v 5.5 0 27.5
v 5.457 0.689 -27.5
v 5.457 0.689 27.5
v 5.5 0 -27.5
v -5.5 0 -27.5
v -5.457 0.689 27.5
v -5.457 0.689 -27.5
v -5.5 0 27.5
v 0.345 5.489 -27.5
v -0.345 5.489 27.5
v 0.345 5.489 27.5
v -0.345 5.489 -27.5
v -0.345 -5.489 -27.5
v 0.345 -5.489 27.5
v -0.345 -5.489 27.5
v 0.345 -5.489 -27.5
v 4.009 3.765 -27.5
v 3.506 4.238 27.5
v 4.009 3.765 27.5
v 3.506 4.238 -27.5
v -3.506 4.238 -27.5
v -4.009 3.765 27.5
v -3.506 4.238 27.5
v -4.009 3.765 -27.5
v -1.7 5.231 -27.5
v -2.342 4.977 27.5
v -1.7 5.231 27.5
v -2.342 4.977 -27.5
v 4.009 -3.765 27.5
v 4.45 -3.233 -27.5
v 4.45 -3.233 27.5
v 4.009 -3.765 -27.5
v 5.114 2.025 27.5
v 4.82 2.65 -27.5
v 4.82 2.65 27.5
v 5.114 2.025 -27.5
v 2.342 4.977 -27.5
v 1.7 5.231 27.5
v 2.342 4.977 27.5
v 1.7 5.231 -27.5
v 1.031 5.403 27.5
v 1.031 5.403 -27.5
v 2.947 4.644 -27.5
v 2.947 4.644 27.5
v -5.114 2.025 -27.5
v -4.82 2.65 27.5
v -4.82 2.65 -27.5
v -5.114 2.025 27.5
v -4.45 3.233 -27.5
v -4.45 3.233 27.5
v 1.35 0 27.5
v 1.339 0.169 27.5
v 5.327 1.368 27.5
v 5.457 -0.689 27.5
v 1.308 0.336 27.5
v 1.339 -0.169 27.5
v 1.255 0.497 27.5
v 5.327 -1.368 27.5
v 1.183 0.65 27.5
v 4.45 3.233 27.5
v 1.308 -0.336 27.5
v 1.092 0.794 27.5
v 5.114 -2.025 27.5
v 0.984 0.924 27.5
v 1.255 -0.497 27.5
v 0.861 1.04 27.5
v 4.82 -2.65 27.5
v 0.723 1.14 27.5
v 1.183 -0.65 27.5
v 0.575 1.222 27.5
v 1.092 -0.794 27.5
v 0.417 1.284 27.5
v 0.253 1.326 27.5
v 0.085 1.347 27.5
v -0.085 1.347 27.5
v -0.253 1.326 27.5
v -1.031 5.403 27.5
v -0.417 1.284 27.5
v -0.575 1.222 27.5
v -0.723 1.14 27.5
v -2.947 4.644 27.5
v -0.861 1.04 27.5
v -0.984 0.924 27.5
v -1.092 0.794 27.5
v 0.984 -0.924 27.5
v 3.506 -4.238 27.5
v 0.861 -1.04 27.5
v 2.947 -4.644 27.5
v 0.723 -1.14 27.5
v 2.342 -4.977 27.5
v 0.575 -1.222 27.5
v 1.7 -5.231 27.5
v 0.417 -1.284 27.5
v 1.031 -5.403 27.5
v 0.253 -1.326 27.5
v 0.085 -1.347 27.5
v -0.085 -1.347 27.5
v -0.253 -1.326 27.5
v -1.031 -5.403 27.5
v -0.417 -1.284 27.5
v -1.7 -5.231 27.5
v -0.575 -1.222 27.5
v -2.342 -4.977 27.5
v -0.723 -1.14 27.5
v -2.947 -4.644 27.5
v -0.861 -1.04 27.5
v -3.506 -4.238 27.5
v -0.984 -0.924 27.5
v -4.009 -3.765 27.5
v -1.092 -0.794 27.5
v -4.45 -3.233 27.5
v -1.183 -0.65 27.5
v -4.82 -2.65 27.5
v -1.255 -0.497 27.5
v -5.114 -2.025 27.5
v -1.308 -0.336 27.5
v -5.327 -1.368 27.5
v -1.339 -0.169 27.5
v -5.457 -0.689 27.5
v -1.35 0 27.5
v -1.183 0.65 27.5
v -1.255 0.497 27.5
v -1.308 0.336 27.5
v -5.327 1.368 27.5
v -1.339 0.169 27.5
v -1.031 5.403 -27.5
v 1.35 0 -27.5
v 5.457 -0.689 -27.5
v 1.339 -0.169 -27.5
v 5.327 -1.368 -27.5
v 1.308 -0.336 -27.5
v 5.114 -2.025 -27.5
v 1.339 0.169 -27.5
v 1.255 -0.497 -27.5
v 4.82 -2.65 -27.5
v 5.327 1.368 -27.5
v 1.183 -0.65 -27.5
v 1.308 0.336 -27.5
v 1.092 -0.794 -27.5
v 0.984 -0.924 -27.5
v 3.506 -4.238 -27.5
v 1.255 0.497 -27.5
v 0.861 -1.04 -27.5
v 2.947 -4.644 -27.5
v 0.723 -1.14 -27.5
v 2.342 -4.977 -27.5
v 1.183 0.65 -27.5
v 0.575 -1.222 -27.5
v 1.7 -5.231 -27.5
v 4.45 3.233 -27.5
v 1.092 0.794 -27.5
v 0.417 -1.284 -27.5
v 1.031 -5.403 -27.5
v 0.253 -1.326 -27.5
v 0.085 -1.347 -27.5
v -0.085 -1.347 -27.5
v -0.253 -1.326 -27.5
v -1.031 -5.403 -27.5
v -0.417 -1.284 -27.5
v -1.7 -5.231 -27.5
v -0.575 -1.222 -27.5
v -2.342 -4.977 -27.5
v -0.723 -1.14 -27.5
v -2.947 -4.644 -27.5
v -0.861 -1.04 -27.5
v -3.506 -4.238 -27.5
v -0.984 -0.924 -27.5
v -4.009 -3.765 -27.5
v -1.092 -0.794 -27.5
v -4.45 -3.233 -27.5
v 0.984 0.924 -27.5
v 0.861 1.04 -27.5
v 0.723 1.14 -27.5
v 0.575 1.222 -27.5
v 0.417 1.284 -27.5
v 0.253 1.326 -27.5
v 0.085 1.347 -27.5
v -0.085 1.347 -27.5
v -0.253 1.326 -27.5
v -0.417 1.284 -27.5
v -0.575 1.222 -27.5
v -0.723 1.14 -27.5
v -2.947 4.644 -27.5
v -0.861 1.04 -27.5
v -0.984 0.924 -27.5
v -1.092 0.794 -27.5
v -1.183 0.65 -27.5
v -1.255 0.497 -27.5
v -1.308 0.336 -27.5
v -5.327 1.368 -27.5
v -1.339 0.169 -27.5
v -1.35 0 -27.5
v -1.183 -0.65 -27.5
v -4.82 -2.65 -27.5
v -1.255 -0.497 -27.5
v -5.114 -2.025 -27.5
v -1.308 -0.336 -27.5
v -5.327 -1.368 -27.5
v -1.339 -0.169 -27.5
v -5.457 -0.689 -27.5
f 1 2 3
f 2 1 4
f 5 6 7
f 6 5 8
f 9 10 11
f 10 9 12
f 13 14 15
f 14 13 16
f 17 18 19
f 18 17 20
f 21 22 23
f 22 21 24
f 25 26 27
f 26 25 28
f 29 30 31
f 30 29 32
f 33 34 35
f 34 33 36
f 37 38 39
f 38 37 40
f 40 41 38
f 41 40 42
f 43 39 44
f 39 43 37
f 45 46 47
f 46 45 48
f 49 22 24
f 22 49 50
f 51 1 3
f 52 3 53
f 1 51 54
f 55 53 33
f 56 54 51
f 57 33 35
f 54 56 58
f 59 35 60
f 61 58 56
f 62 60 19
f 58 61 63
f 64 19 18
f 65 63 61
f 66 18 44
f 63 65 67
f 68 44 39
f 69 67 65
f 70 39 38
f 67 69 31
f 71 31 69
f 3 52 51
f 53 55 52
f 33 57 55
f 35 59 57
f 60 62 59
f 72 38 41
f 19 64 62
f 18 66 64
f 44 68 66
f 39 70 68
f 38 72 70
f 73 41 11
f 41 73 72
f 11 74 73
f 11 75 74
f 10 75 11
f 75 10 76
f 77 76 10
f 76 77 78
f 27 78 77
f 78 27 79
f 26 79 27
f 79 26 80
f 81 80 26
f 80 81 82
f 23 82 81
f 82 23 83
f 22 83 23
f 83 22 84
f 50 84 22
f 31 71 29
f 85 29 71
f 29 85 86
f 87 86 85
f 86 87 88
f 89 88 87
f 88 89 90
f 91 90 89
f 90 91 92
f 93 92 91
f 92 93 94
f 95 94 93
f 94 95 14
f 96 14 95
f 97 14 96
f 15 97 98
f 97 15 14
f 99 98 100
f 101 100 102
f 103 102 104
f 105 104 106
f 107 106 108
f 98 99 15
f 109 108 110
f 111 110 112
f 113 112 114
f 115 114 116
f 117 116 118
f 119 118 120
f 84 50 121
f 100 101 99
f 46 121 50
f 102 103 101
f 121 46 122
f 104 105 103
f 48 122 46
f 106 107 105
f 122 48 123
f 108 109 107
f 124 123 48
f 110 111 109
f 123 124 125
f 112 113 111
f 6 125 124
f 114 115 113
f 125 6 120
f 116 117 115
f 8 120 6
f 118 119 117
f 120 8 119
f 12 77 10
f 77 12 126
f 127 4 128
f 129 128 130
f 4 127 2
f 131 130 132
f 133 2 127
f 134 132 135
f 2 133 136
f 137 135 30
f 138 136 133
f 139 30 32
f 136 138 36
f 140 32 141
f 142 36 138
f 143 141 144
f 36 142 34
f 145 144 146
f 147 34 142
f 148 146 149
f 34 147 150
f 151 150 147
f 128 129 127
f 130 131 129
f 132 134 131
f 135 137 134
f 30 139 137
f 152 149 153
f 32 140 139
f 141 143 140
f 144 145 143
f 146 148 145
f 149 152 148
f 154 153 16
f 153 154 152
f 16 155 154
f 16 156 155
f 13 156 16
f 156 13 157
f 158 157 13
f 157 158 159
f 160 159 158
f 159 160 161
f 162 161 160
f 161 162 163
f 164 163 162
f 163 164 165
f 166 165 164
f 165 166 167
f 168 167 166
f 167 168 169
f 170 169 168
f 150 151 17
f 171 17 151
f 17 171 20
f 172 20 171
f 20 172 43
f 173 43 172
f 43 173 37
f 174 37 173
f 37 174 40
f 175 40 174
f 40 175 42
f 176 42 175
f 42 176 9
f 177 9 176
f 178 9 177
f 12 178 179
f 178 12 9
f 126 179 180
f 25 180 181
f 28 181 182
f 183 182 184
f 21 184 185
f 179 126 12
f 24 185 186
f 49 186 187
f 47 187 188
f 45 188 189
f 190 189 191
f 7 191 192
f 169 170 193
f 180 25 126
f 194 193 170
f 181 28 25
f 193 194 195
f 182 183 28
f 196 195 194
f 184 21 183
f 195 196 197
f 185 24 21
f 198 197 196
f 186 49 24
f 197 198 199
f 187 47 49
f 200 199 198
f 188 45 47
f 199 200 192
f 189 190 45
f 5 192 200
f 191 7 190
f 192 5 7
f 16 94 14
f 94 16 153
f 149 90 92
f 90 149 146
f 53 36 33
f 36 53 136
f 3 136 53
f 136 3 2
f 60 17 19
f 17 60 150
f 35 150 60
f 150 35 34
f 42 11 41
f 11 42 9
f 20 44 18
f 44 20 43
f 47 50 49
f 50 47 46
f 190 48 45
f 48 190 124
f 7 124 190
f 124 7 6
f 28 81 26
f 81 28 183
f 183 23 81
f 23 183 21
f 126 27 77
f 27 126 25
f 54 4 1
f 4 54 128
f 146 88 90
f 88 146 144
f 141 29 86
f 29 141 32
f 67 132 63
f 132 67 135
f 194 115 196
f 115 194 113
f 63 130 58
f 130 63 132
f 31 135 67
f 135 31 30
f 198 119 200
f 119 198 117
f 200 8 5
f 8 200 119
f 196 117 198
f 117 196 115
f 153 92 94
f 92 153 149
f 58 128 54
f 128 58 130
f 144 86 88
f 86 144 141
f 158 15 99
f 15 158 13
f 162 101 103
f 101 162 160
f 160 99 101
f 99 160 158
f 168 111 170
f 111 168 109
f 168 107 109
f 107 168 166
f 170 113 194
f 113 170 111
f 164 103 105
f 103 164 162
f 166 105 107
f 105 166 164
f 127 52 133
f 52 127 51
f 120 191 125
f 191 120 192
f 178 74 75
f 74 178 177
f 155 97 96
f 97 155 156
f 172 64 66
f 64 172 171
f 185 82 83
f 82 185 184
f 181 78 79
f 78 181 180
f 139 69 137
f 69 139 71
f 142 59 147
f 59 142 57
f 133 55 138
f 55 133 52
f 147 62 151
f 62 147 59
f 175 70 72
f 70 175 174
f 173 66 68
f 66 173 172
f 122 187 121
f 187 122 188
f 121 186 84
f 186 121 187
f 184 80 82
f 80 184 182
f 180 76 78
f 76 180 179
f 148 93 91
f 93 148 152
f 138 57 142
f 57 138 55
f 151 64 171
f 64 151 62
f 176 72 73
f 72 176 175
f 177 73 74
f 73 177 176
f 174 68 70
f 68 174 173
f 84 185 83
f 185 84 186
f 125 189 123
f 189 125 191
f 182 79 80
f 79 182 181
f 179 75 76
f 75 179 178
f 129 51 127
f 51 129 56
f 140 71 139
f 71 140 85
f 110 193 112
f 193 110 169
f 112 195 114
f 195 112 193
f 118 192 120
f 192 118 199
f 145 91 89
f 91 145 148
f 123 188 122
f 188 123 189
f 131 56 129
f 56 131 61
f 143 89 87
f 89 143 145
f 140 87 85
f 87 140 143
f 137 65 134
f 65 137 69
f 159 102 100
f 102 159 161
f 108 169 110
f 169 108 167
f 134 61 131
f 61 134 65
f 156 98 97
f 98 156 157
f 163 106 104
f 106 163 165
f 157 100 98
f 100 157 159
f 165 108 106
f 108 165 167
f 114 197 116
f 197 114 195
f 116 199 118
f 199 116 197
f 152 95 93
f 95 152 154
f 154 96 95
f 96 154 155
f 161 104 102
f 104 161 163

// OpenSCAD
$fn = 50;


difference() {
	union() {
		translate(v = [0, 0, -27.5000000000]) {
			cylinder(h = 55, r = 5.5000000000);
		}
	}
	union() {
		translate(v = [0, 0, -100.0000000000]) {
			cylinder(h = 200, r = 1.3500000000);
		}
	}
}
